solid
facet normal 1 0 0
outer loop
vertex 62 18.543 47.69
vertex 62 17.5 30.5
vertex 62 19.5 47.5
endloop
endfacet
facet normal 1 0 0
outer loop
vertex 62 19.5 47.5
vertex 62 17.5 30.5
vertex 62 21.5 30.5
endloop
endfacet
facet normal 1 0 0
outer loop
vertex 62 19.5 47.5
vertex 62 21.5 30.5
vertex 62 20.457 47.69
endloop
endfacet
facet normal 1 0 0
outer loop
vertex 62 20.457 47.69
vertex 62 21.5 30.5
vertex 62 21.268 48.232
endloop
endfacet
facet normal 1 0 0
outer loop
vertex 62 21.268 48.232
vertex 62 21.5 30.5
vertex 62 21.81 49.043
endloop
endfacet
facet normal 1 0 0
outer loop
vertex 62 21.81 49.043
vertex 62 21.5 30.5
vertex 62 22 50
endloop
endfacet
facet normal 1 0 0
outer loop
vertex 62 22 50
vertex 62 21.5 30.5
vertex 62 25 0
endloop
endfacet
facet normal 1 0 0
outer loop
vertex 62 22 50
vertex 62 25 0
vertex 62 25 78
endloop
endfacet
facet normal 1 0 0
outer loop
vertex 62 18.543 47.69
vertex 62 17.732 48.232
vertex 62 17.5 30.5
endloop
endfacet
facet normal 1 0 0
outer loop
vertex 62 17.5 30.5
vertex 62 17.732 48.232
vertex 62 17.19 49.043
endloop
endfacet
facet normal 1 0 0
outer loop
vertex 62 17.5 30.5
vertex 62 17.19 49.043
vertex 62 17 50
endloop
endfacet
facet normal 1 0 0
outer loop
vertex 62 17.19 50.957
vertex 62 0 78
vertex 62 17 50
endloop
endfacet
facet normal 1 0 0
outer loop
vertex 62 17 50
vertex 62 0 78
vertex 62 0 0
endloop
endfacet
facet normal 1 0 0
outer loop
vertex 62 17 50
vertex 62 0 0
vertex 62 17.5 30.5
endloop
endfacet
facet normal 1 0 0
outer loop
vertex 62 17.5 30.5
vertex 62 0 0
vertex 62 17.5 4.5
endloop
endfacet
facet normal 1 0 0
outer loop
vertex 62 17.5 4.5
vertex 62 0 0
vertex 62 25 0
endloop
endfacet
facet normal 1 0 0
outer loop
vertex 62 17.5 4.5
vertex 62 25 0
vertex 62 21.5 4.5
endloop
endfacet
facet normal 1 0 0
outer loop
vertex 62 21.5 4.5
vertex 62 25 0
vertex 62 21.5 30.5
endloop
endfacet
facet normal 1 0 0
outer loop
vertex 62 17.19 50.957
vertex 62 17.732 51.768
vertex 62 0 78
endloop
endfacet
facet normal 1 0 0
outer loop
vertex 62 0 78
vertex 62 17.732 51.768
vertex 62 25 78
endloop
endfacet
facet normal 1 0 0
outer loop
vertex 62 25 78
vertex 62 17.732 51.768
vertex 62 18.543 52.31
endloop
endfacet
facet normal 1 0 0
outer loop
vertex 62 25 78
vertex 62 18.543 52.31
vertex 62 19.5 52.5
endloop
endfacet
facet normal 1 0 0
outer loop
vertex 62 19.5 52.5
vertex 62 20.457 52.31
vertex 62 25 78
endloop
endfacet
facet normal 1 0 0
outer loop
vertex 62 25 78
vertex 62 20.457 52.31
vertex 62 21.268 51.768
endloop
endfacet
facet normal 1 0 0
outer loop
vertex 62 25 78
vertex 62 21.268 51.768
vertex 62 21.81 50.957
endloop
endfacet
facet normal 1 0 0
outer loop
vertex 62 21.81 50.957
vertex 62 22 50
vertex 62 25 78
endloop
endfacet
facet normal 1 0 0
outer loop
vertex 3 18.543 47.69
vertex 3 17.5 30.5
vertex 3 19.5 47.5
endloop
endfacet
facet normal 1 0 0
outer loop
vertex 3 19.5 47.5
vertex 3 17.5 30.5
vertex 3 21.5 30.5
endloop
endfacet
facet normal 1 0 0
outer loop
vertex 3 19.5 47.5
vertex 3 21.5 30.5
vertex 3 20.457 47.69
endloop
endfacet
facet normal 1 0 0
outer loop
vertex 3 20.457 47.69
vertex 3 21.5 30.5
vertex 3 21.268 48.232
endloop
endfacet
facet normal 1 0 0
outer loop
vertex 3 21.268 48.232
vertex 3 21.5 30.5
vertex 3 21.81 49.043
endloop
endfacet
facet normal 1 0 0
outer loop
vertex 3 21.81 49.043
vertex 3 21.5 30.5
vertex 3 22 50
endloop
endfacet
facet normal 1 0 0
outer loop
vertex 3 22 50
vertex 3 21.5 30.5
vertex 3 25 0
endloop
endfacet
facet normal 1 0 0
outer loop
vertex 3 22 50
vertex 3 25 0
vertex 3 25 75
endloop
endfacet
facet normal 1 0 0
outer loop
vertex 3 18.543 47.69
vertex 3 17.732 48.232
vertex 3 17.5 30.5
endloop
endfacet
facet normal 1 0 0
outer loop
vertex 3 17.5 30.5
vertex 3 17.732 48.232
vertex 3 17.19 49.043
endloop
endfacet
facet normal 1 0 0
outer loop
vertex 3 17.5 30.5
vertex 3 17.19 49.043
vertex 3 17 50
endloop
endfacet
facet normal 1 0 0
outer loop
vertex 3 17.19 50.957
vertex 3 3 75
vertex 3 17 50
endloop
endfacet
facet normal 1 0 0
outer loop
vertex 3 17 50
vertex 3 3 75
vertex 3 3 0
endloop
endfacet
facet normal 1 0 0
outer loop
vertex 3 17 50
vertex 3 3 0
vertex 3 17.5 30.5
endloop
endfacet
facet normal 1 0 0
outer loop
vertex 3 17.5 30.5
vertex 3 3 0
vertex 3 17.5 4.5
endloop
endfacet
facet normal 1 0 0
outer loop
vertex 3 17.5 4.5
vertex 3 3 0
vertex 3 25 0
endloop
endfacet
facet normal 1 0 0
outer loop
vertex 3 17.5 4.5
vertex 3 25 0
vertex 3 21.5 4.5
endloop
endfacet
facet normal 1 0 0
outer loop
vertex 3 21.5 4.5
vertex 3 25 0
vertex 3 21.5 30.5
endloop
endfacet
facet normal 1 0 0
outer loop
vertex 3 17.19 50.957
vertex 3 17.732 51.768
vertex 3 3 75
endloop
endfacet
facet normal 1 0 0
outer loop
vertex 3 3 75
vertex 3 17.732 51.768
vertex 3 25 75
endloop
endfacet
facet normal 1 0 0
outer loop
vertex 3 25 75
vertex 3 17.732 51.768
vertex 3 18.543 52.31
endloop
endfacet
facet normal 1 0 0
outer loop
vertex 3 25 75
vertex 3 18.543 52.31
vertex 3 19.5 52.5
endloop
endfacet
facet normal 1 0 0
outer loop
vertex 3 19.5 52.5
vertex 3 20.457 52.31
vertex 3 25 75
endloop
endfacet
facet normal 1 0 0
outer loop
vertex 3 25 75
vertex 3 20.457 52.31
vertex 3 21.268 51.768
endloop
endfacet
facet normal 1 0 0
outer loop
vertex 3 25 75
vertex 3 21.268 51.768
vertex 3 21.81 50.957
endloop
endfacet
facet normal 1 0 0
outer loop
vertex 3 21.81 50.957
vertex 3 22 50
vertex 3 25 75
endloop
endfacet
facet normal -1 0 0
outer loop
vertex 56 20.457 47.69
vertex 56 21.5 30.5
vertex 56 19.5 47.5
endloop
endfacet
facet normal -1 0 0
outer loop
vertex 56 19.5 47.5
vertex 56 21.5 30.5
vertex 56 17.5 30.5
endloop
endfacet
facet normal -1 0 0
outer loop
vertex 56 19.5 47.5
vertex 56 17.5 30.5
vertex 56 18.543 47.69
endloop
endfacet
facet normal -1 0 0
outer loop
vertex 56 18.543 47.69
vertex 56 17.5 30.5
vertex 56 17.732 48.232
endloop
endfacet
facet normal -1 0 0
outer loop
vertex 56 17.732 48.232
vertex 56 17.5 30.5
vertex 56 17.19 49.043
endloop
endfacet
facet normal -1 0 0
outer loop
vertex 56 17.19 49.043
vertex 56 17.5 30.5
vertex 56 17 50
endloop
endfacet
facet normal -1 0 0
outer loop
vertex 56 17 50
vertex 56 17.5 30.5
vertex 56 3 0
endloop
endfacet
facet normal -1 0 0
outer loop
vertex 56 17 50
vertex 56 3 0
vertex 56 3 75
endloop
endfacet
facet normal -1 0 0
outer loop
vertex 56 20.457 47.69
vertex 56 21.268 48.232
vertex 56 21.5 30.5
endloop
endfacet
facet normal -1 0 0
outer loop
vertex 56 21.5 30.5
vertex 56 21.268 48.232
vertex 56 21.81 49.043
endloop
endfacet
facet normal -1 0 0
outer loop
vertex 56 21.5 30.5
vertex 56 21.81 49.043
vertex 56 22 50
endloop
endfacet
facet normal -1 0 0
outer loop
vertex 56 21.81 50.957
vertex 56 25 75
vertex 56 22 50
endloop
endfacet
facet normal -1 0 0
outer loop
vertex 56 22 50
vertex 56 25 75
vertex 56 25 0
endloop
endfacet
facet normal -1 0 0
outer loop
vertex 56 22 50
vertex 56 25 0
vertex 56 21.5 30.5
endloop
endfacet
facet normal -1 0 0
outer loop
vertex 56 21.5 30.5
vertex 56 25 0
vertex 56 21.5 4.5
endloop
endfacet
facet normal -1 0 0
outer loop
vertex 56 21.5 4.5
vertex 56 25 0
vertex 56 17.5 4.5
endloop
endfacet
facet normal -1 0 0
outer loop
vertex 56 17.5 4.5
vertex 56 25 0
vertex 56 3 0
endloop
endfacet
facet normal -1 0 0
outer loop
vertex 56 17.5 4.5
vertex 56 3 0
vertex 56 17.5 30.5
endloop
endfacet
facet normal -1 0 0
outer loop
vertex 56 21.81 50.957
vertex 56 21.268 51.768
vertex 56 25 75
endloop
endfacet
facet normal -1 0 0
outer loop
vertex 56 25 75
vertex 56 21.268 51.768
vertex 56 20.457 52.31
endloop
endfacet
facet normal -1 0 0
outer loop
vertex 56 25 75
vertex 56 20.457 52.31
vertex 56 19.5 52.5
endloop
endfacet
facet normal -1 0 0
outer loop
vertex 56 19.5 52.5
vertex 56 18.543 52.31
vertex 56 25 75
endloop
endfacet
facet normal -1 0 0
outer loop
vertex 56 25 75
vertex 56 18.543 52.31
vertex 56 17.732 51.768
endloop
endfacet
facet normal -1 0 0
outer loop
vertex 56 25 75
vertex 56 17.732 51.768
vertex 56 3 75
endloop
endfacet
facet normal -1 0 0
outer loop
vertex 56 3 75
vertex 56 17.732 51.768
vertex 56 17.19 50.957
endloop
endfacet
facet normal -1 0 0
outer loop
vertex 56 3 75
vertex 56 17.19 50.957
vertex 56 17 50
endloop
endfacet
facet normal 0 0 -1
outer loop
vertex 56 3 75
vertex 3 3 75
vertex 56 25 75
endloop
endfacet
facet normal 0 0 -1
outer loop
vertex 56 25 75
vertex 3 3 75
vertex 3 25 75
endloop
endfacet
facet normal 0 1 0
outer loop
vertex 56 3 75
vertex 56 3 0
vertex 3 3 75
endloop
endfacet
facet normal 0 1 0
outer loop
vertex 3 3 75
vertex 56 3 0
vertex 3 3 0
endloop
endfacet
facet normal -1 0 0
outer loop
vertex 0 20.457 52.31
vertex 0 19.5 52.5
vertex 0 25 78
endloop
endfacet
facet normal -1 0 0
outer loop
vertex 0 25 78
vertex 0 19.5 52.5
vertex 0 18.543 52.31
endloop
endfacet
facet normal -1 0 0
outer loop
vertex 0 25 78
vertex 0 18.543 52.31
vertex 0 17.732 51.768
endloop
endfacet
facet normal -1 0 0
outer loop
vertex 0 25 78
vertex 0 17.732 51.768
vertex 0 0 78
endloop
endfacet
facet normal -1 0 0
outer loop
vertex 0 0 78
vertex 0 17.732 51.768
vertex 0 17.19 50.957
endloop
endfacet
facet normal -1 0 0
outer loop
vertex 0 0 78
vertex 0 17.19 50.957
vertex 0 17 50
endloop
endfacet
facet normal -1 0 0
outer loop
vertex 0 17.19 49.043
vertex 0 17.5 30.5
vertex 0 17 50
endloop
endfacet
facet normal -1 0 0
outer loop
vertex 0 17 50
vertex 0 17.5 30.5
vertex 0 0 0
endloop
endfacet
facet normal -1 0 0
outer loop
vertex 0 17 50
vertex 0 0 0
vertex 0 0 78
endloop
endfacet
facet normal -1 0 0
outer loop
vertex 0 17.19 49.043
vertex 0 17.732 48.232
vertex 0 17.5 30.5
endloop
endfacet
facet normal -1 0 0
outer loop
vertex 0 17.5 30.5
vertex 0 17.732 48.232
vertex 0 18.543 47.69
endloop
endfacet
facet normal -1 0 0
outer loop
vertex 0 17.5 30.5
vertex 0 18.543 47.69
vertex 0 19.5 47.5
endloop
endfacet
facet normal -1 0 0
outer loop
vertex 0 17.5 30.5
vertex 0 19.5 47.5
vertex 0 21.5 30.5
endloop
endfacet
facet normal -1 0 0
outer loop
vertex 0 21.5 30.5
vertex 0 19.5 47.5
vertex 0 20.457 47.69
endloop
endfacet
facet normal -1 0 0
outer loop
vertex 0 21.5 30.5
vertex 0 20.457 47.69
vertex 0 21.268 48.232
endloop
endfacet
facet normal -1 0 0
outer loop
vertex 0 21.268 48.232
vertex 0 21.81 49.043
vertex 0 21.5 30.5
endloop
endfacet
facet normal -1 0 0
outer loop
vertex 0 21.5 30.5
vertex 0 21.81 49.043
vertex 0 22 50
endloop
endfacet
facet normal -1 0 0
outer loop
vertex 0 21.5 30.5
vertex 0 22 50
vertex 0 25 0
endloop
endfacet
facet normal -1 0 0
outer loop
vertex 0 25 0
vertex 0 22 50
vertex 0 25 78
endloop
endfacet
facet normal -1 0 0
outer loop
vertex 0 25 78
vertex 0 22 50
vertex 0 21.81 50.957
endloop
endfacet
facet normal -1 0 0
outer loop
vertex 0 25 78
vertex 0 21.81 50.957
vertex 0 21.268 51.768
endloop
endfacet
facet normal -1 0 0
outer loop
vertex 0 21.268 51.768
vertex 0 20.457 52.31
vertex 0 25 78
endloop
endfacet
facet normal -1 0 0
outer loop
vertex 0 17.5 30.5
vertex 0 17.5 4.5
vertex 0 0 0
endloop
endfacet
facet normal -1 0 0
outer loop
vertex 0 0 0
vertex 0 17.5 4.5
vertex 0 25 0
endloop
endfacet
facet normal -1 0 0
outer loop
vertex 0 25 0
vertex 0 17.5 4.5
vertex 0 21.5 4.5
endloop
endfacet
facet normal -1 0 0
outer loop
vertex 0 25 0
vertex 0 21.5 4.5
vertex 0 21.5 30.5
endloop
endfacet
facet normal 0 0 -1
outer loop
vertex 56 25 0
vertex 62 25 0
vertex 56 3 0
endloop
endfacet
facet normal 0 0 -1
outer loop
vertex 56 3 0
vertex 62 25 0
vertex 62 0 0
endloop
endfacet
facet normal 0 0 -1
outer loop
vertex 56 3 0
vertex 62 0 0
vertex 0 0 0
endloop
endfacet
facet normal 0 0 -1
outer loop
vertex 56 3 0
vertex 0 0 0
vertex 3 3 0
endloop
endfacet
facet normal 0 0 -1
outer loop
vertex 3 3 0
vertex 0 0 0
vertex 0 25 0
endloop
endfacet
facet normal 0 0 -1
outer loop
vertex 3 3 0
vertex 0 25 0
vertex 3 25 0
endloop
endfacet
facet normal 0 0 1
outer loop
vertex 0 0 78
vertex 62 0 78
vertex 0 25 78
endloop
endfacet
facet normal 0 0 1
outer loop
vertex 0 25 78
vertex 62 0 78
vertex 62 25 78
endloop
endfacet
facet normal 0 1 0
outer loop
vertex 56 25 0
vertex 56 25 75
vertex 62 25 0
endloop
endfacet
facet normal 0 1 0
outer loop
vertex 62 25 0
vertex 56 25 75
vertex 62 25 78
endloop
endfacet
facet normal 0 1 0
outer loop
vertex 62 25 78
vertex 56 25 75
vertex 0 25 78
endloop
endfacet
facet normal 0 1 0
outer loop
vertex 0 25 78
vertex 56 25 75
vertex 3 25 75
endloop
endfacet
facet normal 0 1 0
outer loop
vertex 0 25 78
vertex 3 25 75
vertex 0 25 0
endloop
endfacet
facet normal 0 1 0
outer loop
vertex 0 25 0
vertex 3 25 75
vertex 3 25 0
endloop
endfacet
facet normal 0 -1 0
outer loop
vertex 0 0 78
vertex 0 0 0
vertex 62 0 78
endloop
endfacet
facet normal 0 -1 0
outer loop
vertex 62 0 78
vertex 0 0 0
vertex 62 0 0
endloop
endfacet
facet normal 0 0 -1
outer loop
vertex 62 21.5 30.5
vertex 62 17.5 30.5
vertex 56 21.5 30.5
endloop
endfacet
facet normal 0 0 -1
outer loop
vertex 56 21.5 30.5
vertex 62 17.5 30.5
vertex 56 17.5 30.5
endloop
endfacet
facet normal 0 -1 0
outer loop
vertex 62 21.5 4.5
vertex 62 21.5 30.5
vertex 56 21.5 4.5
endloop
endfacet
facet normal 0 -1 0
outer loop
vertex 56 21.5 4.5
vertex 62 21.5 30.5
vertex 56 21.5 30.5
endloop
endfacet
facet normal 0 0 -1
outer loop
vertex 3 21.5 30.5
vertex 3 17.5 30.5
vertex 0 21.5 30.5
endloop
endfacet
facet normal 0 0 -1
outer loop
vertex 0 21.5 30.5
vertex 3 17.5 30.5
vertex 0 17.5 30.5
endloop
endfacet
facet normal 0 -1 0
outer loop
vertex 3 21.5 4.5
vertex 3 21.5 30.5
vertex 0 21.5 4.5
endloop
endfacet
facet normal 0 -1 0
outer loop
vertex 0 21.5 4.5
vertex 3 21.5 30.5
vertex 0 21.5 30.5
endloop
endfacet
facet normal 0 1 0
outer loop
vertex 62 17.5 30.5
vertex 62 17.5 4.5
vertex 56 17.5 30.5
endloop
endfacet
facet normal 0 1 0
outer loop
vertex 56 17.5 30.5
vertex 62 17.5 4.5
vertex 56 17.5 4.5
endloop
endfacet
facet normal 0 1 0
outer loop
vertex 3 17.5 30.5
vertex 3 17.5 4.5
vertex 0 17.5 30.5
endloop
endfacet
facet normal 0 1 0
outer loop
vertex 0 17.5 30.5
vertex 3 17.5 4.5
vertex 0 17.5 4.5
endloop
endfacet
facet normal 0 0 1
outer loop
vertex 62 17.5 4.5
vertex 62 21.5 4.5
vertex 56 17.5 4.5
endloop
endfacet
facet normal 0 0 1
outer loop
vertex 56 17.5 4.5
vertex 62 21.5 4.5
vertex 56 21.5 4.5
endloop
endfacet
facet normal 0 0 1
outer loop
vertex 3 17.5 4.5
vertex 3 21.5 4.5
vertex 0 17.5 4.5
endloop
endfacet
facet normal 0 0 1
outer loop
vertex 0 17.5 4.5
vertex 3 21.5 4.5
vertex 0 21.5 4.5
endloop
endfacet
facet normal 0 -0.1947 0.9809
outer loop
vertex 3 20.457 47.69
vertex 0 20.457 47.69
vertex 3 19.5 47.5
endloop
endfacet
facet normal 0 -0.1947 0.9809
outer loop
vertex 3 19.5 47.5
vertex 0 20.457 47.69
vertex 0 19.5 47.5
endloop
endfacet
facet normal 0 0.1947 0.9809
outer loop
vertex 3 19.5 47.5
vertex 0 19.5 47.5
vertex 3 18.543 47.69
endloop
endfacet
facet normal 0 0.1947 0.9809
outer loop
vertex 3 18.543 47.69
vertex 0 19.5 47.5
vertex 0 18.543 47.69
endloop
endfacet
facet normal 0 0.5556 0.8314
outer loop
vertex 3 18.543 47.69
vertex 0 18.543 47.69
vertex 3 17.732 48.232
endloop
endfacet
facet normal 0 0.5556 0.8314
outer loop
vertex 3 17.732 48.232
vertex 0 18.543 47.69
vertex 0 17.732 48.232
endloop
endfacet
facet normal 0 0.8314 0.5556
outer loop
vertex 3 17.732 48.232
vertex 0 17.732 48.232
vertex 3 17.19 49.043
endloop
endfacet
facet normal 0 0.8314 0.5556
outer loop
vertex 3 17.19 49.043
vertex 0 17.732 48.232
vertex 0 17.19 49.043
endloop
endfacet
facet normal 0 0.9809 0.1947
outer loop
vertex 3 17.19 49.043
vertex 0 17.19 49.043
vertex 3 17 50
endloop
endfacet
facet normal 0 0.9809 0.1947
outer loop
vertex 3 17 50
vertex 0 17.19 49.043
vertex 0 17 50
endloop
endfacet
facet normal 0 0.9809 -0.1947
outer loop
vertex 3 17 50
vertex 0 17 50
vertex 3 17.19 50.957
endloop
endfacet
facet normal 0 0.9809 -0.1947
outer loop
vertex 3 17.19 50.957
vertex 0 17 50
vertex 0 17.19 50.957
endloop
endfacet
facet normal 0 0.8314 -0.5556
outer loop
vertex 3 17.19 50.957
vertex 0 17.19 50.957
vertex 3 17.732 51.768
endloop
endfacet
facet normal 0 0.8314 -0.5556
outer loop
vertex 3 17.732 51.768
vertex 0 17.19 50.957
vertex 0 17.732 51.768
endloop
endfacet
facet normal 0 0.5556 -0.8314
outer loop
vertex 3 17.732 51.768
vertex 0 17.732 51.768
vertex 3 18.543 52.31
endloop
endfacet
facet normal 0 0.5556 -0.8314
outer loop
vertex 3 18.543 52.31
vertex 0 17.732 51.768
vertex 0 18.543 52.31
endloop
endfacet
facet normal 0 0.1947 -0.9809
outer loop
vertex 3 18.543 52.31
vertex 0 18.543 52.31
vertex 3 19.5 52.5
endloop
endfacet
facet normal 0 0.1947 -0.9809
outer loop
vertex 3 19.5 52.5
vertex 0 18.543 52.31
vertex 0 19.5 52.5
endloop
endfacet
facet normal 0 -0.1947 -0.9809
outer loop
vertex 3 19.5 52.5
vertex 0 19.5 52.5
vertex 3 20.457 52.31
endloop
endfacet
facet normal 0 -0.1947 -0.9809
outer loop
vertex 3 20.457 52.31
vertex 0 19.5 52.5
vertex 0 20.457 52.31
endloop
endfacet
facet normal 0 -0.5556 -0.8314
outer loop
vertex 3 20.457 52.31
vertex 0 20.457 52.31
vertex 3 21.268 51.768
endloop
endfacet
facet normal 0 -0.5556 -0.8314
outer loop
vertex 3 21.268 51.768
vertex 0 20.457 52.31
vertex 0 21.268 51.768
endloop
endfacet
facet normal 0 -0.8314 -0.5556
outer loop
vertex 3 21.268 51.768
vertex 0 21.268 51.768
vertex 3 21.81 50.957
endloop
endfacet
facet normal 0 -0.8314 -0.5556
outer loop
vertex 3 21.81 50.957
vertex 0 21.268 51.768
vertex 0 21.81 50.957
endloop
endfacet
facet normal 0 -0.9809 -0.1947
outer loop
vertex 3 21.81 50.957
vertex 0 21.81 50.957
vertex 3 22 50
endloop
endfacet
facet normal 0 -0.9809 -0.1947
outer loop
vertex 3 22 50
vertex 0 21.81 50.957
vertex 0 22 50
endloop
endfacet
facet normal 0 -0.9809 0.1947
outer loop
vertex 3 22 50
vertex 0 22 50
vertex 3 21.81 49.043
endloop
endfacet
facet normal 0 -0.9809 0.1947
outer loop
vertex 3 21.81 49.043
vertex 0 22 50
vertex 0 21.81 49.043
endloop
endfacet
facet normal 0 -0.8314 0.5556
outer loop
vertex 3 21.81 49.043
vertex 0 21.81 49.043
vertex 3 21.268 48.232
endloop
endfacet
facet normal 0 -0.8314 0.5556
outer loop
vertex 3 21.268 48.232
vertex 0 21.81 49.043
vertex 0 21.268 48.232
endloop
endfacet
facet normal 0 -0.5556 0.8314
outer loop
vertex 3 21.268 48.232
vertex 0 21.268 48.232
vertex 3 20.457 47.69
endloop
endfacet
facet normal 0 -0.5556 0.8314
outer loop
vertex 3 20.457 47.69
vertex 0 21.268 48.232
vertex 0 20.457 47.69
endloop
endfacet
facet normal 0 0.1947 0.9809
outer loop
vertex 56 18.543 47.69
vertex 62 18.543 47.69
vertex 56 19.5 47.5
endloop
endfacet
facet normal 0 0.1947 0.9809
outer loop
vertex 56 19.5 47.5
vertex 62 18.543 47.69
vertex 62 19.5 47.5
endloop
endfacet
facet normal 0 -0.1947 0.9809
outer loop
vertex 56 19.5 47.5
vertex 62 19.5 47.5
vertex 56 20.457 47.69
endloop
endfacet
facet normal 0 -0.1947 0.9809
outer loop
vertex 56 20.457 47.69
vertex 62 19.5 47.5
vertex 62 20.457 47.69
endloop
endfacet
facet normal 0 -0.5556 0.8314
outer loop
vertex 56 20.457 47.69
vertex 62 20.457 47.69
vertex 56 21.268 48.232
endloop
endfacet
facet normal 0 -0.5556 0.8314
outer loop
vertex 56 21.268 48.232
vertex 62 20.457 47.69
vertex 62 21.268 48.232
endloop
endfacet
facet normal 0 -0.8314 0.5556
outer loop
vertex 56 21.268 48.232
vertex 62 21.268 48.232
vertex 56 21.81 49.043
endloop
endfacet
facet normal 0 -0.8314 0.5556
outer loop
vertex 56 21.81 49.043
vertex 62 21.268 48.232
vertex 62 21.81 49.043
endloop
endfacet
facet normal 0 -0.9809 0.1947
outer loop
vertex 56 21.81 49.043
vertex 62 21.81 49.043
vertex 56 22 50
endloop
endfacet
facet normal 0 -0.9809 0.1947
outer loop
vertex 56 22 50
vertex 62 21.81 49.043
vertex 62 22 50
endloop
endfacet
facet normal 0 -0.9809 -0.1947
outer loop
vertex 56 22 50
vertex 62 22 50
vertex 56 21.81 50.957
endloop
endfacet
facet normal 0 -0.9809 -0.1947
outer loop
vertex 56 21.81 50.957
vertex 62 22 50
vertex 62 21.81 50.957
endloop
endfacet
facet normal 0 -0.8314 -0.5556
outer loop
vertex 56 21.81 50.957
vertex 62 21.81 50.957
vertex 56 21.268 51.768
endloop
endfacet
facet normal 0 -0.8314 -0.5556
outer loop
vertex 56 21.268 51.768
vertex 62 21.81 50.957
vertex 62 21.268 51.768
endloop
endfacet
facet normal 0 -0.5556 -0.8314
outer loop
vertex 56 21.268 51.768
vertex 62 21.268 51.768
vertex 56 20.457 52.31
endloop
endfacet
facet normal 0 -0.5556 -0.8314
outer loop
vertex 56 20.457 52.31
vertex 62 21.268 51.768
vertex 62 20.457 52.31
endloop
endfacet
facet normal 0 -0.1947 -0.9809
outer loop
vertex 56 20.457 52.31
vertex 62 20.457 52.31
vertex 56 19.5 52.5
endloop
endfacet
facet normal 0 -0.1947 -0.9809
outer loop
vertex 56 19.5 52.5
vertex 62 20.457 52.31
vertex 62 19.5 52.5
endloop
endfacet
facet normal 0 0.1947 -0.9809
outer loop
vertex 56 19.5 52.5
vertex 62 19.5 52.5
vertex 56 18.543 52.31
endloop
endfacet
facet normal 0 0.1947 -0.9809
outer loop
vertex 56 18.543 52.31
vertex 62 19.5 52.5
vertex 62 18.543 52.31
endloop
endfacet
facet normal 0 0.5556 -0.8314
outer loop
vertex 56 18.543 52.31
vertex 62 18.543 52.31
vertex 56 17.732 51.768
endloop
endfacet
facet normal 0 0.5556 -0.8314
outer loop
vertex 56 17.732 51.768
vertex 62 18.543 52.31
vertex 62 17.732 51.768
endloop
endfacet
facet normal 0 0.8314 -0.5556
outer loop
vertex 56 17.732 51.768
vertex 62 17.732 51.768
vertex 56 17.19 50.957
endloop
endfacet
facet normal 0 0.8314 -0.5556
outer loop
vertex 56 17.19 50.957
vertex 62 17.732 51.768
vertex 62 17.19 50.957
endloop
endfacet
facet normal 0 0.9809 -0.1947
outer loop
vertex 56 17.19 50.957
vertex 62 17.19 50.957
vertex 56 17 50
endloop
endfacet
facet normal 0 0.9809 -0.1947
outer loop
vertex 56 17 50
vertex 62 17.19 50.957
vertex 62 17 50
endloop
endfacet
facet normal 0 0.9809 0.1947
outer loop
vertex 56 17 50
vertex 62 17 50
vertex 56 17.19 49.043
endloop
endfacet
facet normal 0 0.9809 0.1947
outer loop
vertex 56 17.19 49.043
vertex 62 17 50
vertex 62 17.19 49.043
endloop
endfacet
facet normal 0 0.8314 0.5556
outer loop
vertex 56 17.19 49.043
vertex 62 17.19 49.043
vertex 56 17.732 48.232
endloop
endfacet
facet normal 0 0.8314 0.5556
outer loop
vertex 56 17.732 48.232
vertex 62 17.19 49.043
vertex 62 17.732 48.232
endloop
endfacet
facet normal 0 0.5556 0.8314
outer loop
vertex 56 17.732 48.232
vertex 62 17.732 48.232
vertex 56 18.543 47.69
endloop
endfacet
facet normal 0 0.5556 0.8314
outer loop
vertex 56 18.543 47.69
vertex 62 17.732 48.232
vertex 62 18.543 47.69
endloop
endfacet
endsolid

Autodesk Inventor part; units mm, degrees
ref_plane "YZ Plane" through (0, 0, 0) normal (1, 0, 0) x (0, 1, 0)
ref_plane "XZ Plane" through (0, 0, 0) normal (0, 1, 0) x (-1, 0, 0)
ref_plane "XY Plane" through (0, 0, 0) normal (0, 0, 1) x (1, 0, 0)
sketch "Sketch2" plane through (0, 0, 0) normal (0, 1, 0) x (-1, 0, 0)
  line L0 (0, 0) -> (-59, 0)
  line L1 (-59, 0) -> (-59, 78)
  line L2 (-59, 78) -> (0, 78)
  line L3 (0, 78) -> (0, 0)
  dimension "d0" = 59
  dimension "d1" = 78
extrude "Extrusion1" add sketch "Sketch2" along normal blind 25
shell "Shell1" thickness 3 removed faces 1 at (39.3333, 25, 52)
sketch "Sketch4" plane through (59, 0, 0) normal (0, 0, -1) x (-1, 0, 0)
  point P0 (59, 0)
sketch "Sketch5" plane through (3, 3, 3) normal (0, 0, 1) x (1, 0, 0)
  line L0 (0, 0) -> (0, 22) projected
  line L1 (0, 22) -> (53, 22) projected
  line L2 (0, 0) -> (53, 0)
  line L3 (53, 0) -> (53, 22)
  line L4 (53, 22) -> (0, 22)
  line L5 (0, 22) -> (0, 0)
  point P0 (-3, -3)
extrude "Extrusion3" cut sketch "Sketch5" against normal blind 10
sketch "Sketch6" plane through (0, 0, 0) normal (-1, 0, 0) x (0, 0, 1)
  line L0 (4.5, 21.5) -> (30.5, 21.5)
  line L1 (30.5, 21.5) -> (30.5, 17.5)
  line L2 (30.5, 17.5) -> (4.5, 17.5)
  line L3 (4.5, 17.5) -> (4.5, 21.5)
  line L4 (0, 0) -> (0, 25) projected
  line L5 (0, 0) -> (78, 0) projected
  dimension "d19" = 26
  dimension "d20" = 4
  dimension "d21" = 4.5
  dimension "d22" = 17.5
sketch "Sketch7" plane through (59, 0, 78) normal (1, 0, 0) x (0, 0, -1)
  line L0 (0, 0) -> (78, 0) projected
  line L1 (0, 25) -> (78, 25)
  line L2 (78, 25) -> (78, 0)
  line L3 (78, 0) -> (0, 0)
  line L4 (0, 0) -> (0, 25)
extrude "Extrusion5" add sketch "Sketch7" along normal blind 3
extrude "Extrusion6" cut sketch "Sketch6" against normal through all
sketch "Sketch8" plane through (0, 0, 0) normal (-1, 0, 0) x (0, 0, 1)
  circle A0 centre (50, 19.5) radius 2.5
  point P0 (0, 0)
  dimension "d29" = 5
extrude "Extrusion7" cut sketch "Sketch8" against normal through all
properties part number "arduino box v05"
